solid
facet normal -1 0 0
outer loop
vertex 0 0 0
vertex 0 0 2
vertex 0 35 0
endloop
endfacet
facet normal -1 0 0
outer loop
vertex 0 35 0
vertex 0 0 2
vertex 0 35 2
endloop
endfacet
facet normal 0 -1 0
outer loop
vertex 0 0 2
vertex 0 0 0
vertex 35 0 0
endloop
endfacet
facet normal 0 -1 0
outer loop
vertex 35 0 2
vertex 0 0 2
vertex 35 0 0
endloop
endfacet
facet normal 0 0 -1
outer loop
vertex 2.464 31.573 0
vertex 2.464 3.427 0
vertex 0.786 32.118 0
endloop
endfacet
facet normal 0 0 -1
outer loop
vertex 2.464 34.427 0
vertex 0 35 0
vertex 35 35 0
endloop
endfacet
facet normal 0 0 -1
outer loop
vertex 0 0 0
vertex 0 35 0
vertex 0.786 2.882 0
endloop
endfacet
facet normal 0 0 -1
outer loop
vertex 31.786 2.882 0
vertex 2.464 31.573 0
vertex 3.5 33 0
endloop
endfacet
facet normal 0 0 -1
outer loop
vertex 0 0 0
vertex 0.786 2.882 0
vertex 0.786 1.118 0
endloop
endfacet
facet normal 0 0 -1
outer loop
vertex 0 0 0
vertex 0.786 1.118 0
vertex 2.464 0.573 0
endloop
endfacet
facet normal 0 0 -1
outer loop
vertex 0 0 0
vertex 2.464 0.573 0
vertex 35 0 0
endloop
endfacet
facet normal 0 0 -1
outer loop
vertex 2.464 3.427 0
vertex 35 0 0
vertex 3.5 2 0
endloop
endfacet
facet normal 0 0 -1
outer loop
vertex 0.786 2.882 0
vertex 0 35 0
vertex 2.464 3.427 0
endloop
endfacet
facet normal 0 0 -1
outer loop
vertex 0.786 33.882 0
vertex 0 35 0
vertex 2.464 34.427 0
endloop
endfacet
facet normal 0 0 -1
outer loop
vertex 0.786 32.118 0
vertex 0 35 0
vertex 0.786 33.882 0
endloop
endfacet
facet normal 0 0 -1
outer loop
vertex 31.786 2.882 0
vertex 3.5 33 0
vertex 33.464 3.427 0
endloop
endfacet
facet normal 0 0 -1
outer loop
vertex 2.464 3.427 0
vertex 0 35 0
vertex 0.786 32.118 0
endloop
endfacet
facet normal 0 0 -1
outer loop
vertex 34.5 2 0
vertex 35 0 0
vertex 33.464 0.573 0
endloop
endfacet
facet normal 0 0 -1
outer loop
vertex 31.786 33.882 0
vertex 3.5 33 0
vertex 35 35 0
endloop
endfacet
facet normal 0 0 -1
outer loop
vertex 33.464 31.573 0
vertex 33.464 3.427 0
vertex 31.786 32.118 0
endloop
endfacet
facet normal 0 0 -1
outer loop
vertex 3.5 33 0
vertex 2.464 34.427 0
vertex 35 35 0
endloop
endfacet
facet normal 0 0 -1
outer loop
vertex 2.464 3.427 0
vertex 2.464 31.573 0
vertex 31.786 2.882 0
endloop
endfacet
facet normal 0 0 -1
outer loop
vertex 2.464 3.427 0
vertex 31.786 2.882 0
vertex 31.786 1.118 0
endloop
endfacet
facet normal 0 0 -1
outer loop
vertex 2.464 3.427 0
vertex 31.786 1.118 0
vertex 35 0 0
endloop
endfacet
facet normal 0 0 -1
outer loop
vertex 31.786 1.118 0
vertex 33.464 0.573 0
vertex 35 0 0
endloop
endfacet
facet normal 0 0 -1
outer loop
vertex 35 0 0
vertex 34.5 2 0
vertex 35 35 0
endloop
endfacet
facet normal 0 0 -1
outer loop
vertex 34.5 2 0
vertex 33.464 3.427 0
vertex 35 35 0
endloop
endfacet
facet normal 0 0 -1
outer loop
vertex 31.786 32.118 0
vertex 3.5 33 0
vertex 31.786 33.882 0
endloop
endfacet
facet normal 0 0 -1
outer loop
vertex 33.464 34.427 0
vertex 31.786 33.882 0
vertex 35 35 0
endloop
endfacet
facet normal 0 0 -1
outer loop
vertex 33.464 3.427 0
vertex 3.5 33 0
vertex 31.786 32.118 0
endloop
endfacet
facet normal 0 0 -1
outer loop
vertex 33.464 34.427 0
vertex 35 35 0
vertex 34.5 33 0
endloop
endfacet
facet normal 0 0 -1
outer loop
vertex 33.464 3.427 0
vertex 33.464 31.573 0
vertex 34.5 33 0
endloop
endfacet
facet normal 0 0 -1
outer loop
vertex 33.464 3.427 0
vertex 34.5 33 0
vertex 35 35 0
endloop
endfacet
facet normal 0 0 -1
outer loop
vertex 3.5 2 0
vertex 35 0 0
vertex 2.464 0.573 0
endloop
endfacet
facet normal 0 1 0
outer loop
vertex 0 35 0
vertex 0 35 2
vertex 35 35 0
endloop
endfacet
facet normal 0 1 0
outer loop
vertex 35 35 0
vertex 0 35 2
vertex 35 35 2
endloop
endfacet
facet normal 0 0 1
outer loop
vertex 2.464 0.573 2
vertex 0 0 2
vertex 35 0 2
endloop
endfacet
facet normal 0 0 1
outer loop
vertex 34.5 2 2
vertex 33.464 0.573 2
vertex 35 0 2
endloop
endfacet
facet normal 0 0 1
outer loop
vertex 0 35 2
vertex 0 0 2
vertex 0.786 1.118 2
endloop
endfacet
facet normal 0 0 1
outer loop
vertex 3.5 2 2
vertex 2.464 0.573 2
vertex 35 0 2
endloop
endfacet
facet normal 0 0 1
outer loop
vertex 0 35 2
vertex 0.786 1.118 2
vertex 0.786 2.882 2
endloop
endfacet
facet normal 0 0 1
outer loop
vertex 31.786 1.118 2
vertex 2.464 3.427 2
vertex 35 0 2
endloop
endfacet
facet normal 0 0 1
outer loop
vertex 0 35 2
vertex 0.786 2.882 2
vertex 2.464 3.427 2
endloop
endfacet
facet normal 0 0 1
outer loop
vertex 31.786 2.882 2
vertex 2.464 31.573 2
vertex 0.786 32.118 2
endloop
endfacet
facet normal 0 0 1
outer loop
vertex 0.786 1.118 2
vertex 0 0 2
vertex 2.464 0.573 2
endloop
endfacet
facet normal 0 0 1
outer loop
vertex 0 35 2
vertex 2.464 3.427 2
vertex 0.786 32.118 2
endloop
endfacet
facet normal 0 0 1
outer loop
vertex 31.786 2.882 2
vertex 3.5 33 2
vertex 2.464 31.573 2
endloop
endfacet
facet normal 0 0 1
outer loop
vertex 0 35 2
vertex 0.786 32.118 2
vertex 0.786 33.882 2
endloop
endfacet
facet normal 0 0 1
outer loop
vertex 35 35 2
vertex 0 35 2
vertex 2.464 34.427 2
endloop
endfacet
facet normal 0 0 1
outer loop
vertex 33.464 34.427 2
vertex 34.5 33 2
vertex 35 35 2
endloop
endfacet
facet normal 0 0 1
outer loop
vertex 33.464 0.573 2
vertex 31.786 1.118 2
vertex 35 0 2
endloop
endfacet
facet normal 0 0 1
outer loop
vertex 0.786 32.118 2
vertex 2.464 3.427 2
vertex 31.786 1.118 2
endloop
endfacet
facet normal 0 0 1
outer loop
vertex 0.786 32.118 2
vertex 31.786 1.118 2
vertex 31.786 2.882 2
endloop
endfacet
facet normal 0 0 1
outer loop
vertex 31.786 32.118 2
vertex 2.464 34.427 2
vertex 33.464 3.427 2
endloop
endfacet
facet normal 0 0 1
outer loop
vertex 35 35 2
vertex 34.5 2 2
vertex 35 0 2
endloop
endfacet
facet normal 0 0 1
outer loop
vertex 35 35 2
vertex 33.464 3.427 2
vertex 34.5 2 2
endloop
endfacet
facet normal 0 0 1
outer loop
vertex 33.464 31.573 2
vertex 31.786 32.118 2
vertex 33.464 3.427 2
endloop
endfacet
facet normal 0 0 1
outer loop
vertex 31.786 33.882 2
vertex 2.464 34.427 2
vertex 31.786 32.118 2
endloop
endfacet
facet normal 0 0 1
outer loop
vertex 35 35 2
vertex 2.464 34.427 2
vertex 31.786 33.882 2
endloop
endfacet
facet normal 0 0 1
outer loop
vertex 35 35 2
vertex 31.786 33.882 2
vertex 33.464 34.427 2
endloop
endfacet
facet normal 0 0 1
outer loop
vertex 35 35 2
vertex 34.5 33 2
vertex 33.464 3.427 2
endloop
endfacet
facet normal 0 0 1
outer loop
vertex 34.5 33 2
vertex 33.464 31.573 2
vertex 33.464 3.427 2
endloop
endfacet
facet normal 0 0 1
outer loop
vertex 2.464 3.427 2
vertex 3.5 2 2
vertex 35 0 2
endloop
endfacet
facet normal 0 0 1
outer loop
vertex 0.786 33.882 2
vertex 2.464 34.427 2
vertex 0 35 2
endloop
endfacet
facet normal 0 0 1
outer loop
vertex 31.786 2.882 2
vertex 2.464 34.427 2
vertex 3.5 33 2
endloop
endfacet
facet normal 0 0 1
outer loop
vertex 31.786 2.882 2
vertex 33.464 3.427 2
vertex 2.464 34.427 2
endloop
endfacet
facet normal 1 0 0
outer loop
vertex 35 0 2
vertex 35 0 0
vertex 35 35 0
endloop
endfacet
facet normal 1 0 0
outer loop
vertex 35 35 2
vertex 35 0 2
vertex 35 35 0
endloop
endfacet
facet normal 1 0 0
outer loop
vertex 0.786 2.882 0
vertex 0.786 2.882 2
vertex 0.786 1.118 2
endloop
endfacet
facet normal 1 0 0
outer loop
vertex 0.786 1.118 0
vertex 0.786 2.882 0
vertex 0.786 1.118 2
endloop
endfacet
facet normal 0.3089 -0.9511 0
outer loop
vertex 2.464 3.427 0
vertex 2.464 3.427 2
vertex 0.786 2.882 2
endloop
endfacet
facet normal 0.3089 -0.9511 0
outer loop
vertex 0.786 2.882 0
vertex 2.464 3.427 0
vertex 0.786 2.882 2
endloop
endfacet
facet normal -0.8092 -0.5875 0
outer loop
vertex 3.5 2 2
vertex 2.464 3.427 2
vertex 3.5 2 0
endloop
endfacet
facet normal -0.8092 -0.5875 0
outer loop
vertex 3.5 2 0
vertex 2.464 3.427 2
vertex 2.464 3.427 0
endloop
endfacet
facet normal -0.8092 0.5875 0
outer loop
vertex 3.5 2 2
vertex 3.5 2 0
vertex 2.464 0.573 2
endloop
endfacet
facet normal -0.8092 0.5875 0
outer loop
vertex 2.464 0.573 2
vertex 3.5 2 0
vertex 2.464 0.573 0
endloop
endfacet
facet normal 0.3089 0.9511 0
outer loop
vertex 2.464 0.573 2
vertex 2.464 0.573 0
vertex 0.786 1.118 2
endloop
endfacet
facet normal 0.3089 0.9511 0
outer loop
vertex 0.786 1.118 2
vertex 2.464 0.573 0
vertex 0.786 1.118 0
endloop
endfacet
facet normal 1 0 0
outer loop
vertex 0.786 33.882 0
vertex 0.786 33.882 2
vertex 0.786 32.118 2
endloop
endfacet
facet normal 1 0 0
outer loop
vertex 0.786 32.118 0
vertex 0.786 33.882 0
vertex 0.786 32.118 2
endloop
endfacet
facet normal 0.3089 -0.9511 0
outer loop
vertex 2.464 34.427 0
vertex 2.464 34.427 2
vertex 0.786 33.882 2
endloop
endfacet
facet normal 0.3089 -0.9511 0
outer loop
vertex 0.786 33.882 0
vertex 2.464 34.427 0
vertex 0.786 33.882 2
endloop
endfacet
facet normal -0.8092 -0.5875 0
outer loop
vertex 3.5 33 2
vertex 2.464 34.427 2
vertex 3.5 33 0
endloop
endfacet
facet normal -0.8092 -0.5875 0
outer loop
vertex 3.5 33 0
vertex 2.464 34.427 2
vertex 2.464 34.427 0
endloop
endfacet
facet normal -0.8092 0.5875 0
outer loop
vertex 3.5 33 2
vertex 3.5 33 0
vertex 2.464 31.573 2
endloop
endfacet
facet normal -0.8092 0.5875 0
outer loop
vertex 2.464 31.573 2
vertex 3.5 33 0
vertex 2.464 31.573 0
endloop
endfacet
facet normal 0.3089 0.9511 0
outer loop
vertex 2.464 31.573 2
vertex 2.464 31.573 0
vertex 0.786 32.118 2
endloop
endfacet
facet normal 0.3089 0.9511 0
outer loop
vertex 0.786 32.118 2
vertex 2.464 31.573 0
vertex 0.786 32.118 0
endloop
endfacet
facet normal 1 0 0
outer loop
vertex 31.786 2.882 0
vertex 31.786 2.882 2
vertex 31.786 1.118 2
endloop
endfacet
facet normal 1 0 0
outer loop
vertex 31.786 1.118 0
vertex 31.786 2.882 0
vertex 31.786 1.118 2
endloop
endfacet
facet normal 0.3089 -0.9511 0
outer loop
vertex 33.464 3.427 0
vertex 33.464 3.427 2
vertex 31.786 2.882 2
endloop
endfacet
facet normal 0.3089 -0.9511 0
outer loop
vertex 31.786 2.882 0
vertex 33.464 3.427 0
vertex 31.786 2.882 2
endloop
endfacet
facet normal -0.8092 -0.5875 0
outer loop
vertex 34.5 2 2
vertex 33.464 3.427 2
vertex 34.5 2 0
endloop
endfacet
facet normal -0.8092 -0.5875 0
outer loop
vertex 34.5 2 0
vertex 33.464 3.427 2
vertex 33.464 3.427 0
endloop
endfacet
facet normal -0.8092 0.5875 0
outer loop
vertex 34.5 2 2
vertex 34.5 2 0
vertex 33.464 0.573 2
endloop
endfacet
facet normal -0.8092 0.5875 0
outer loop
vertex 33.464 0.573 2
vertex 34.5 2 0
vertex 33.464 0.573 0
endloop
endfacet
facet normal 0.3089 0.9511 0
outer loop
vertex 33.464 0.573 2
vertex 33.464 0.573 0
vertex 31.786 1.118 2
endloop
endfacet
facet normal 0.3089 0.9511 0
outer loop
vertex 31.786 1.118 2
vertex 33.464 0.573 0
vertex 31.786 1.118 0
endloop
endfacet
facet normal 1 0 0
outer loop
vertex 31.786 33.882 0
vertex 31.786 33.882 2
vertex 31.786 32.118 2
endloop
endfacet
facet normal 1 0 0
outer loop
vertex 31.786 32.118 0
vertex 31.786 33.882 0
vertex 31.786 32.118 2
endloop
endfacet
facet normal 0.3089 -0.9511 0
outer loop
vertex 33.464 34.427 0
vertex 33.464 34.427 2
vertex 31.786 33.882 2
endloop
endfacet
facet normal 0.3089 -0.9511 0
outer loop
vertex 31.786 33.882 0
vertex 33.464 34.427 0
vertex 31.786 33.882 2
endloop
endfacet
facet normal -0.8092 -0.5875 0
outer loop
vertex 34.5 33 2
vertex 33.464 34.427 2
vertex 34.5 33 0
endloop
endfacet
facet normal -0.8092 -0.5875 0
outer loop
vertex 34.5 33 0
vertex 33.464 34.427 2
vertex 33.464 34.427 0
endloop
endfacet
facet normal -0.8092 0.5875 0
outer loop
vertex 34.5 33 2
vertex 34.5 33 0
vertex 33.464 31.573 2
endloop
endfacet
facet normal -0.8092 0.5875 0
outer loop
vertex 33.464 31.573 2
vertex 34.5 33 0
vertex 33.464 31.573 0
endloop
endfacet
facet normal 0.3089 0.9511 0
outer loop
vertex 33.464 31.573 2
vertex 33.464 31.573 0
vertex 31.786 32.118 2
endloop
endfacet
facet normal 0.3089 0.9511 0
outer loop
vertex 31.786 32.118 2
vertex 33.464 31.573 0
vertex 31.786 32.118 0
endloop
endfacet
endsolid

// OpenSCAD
H=2;
B=35;
F=2;
D=3;
difference() {
  cube([B,B,H]);
  translate([F,F,0]) cylinder(h=H,d=D);
  translate([B-F,F,0]) cylinder(h=H,d=D);
  translate([B-F,B-F,0]) cylinder(h=H,d=D);
  translate([F,B-F,0]) cylinder(h=H,d=D);
}
